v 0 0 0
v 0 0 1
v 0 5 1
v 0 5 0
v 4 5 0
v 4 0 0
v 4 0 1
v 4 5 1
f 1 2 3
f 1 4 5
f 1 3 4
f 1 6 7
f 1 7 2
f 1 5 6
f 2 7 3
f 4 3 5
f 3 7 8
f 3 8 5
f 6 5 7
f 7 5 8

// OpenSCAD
/* Warning, this is a very basic generator with a lot of approximation 
input data : [VQFN, RSB, 4x5x1mm, 28, , A, C04-21390A]
generated by com.zoubworld.electronics.cad.model3d.Basic
Date : Sun Feb 15 10:50:49 CET 2026
*/

//body
color("black")
translate([0,0,0])
cube([4.0,5.0,1.0], center=false);
